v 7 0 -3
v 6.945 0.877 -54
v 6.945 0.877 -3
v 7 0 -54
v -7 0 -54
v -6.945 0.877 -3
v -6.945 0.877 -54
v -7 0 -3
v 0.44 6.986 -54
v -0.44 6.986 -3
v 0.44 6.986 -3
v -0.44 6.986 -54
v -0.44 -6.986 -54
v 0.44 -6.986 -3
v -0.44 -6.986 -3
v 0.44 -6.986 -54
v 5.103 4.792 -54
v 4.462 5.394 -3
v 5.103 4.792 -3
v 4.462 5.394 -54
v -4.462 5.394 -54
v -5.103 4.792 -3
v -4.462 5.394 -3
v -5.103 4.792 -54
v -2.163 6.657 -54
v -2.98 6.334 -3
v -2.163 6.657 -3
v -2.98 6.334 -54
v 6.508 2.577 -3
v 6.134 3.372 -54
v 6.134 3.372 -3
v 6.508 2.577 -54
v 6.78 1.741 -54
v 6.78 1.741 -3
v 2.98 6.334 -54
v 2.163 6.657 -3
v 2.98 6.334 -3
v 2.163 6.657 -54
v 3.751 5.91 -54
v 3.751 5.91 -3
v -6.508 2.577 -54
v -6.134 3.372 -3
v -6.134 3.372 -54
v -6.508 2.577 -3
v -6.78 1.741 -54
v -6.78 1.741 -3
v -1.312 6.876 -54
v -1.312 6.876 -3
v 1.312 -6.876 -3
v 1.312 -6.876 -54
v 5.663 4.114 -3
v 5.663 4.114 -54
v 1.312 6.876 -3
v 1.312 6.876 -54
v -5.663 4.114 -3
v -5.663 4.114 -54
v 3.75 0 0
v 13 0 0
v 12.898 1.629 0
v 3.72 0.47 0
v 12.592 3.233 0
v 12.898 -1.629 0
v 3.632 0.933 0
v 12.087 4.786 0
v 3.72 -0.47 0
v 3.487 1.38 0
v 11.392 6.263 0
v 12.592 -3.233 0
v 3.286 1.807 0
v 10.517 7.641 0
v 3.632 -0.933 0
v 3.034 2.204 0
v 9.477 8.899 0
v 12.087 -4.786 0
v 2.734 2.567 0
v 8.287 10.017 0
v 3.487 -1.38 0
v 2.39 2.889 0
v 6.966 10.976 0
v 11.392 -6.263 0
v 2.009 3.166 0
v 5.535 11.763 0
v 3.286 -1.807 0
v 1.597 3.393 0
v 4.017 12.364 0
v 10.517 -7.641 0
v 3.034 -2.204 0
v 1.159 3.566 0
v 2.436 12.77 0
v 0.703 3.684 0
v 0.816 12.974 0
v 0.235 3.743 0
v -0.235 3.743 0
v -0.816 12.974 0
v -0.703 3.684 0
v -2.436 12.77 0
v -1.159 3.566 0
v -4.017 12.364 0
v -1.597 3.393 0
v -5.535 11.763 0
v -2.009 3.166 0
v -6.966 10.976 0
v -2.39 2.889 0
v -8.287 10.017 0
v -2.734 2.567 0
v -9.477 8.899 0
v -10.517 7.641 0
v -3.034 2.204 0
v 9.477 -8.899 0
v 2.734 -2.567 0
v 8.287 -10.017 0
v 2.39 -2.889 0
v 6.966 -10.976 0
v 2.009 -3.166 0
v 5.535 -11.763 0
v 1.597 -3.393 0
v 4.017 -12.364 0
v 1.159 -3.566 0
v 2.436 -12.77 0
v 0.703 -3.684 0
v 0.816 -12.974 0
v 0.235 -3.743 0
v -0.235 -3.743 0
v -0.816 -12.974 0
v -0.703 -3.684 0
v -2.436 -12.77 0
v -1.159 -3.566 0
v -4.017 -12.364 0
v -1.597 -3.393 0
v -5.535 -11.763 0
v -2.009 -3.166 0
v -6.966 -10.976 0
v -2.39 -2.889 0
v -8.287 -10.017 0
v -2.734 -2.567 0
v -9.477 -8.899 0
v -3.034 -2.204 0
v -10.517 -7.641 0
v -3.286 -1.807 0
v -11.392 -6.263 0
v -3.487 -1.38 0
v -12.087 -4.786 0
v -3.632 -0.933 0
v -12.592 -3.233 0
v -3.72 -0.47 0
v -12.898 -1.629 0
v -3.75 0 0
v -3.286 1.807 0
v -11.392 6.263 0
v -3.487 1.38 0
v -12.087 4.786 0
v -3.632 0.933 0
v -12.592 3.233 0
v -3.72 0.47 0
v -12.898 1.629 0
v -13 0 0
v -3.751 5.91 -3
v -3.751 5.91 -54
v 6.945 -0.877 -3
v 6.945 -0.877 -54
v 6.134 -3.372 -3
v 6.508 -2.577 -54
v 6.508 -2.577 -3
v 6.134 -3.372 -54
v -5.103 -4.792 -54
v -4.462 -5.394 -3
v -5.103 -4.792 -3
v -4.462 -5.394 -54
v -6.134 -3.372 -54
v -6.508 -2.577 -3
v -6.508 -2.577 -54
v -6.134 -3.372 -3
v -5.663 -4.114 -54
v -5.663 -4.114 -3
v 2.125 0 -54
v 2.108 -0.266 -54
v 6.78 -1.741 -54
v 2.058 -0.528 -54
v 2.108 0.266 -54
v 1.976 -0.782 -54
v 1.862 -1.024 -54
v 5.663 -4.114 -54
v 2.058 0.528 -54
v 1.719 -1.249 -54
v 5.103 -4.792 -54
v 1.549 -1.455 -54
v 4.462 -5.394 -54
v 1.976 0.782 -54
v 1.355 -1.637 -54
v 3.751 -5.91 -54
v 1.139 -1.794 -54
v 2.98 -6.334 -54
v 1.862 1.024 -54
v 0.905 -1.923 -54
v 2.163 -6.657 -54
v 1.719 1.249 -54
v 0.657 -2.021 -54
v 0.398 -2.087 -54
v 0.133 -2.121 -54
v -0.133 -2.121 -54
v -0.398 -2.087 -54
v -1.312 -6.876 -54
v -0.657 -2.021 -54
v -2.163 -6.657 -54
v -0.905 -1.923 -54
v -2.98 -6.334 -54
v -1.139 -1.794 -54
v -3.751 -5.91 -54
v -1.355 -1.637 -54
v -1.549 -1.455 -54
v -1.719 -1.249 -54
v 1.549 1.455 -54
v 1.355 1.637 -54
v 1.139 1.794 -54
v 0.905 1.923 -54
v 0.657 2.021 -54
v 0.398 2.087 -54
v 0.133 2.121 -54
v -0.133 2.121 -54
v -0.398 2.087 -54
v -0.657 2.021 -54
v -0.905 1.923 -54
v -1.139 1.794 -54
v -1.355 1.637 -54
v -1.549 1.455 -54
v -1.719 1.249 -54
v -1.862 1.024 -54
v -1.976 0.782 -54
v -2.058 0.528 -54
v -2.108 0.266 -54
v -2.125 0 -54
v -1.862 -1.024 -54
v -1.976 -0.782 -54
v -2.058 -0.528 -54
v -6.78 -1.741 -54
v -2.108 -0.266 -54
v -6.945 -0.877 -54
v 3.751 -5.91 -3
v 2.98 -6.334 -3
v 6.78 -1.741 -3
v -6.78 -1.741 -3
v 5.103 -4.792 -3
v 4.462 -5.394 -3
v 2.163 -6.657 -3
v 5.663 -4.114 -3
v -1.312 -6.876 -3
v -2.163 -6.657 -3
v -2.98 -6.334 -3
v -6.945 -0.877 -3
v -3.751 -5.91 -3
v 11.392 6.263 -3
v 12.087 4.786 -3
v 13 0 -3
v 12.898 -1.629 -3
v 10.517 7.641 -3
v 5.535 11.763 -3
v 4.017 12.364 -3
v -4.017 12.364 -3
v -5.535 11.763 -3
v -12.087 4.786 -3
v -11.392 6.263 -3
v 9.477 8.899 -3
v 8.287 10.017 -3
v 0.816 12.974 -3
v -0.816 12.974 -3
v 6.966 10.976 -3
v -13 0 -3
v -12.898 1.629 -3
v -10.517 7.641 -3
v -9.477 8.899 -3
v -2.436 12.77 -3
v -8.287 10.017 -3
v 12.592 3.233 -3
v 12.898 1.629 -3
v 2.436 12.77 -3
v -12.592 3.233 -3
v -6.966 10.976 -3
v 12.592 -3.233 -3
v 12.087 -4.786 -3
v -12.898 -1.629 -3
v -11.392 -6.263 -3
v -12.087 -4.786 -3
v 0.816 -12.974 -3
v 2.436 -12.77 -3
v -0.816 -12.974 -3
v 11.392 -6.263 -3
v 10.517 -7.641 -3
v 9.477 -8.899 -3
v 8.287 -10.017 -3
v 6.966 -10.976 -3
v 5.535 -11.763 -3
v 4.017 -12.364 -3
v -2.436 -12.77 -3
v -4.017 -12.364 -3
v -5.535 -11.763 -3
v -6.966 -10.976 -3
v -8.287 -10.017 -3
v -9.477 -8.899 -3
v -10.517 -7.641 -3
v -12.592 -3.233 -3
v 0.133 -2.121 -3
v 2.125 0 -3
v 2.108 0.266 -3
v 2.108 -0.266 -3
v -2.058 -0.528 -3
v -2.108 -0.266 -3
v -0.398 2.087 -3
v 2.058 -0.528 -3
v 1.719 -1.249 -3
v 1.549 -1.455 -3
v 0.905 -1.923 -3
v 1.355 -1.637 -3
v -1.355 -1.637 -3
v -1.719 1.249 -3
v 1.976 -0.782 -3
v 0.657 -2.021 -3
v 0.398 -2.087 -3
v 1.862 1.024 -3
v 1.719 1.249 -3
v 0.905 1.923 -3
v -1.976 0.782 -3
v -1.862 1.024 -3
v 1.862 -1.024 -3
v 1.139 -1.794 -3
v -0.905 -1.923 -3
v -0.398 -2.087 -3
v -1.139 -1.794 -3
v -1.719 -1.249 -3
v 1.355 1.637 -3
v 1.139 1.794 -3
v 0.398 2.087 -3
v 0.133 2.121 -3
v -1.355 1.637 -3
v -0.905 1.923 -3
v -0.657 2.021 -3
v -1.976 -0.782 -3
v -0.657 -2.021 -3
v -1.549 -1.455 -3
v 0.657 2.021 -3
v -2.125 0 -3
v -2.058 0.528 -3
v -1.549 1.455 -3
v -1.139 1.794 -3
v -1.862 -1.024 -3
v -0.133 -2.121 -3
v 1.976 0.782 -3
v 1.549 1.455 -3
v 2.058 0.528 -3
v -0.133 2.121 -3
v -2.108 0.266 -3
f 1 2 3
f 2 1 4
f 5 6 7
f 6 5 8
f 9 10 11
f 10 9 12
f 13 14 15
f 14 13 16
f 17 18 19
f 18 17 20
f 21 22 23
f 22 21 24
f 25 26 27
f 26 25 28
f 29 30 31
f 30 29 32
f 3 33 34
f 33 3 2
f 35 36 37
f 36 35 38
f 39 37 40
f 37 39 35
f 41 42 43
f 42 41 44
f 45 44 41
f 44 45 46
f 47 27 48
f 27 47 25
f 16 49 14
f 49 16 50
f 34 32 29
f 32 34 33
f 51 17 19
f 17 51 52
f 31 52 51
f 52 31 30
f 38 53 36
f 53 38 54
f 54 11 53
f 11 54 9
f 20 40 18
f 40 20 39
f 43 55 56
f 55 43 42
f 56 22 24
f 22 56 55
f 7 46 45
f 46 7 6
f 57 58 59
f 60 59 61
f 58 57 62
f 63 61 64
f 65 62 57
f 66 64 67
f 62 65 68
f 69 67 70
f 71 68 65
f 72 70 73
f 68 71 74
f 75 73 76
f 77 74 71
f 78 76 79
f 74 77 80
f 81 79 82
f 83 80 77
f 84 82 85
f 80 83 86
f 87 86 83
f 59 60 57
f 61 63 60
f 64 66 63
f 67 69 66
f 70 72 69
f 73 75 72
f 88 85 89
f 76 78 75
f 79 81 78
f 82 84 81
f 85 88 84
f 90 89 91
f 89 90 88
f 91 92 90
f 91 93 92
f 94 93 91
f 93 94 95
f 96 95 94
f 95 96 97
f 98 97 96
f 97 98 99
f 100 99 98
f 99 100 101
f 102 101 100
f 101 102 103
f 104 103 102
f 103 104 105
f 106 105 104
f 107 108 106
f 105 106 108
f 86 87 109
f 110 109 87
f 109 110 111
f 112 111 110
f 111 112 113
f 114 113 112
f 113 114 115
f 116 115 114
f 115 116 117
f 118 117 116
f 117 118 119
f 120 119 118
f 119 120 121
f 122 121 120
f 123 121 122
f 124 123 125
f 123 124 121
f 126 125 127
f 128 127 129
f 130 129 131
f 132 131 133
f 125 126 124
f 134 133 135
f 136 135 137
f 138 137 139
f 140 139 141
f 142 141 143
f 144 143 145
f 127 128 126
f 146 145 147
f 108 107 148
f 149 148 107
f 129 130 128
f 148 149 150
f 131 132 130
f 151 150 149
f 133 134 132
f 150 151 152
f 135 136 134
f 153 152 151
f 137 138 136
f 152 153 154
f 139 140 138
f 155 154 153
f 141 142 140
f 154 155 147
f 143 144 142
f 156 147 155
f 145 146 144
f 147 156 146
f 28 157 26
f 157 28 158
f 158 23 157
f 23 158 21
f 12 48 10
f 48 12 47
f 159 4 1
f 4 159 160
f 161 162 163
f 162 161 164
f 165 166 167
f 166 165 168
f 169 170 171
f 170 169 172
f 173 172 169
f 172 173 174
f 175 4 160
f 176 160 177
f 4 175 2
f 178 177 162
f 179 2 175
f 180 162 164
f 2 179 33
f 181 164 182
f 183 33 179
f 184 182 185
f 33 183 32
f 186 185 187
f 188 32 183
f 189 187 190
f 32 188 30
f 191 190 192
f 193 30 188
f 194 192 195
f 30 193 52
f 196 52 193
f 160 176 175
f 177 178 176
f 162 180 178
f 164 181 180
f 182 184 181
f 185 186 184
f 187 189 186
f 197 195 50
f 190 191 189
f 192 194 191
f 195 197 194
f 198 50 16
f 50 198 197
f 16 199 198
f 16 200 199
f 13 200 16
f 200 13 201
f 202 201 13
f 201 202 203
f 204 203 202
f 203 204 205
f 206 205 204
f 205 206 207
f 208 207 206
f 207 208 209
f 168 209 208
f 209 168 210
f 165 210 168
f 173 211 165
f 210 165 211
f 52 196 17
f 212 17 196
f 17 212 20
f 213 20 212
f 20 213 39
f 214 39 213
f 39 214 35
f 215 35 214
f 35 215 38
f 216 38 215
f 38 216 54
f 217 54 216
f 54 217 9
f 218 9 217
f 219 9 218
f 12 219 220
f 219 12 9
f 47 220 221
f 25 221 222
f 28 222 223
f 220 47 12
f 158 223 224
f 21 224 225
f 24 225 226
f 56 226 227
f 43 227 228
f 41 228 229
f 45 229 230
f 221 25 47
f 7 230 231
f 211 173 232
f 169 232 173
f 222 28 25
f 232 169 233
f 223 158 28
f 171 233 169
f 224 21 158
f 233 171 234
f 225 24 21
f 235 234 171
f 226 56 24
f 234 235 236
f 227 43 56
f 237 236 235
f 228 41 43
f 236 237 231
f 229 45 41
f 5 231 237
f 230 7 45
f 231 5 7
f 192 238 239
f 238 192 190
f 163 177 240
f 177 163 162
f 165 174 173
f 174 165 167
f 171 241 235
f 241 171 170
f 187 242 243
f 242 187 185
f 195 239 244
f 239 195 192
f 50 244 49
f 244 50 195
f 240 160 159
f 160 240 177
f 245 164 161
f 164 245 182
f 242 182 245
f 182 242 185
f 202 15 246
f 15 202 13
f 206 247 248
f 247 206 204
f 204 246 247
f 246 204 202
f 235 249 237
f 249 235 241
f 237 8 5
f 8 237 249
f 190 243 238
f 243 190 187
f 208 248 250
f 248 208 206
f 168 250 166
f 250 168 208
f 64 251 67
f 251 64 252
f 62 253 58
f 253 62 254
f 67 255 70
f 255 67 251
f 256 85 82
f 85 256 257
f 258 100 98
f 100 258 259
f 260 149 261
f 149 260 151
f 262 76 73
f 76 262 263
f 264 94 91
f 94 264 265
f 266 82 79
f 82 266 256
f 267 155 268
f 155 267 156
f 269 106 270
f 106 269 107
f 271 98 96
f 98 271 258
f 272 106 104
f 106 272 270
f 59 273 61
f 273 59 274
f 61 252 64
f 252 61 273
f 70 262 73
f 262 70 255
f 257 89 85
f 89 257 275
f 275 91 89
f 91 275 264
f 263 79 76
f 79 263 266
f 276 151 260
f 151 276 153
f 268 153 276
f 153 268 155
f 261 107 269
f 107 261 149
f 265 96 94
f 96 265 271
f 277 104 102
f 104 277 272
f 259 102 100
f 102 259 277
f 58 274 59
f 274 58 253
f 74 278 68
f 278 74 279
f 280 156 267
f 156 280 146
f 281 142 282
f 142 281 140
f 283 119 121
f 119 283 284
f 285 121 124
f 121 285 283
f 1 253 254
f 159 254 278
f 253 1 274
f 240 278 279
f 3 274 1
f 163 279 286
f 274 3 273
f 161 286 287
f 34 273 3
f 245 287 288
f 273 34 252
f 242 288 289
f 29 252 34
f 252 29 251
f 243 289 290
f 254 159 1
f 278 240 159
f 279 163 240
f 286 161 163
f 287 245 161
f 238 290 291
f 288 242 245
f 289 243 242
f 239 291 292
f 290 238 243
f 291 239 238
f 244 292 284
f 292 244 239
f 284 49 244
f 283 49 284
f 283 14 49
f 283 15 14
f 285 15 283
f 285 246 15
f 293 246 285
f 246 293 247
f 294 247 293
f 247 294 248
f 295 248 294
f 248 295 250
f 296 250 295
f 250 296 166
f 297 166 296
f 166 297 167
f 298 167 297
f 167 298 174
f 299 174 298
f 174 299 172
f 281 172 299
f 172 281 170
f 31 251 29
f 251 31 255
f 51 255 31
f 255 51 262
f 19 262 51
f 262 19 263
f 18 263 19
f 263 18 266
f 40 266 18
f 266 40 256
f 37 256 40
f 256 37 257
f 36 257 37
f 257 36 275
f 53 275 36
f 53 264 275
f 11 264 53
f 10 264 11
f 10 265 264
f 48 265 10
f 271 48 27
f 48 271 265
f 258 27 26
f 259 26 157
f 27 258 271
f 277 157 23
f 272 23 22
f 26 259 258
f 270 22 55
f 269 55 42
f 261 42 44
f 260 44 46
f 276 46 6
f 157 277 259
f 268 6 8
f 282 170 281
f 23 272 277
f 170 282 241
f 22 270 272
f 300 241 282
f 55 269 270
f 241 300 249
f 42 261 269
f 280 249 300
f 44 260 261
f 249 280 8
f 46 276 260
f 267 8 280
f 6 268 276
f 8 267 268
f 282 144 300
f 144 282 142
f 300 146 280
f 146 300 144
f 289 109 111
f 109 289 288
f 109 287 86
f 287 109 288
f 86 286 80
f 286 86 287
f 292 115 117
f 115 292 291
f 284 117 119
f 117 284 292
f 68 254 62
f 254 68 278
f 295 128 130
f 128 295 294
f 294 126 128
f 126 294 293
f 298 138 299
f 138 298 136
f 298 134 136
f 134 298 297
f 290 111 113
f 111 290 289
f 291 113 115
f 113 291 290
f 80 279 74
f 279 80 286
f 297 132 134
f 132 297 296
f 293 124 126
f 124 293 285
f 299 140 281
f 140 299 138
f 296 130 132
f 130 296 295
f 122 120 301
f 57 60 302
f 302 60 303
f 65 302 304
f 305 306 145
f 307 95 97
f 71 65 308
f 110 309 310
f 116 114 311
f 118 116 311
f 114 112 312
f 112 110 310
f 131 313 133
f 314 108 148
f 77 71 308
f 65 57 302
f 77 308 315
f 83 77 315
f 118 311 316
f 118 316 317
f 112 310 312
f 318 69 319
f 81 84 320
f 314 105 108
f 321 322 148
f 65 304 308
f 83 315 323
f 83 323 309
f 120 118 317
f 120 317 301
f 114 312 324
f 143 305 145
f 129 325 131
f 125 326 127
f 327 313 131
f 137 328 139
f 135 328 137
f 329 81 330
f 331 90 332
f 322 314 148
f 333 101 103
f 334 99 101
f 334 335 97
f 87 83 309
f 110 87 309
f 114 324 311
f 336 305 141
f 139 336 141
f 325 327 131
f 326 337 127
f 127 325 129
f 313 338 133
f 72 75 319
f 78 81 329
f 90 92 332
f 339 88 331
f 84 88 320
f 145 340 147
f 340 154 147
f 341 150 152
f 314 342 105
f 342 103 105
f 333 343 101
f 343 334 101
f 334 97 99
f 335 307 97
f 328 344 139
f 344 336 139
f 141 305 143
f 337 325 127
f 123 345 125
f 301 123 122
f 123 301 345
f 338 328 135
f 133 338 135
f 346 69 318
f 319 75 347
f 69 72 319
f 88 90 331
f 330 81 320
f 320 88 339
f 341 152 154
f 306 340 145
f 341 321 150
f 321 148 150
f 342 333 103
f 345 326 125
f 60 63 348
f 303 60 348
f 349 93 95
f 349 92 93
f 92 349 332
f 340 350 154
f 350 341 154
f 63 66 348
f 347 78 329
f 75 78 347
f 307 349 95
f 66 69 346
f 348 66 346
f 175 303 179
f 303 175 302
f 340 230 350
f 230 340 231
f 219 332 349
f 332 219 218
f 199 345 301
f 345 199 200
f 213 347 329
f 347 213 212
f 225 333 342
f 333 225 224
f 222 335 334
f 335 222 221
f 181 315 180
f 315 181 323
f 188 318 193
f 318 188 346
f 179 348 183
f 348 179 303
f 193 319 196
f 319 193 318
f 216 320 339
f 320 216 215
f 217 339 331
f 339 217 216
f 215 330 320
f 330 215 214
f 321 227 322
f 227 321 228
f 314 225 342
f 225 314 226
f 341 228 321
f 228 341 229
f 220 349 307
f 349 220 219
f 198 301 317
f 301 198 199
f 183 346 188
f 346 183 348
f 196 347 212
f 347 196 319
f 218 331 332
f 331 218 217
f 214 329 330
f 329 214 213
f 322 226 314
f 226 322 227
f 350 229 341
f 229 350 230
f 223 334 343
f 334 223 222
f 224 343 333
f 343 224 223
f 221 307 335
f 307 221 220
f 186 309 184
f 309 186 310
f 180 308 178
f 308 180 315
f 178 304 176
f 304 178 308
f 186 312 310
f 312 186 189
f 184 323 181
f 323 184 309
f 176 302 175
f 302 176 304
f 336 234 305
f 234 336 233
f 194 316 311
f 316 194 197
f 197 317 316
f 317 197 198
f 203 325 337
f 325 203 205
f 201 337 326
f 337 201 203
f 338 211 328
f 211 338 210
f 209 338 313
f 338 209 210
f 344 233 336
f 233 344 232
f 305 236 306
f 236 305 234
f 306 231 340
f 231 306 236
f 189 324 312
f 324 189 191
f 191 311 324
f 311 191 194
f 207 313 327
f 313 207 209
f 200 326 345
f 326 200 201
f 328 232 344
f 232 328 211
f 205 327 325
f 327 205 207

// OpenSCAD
$fn = 50;


difference() {
	union() {
		translate(v = [0, 0, -54.0000000000]) {
			cylinder(h = 54, r = 7.0000000000);
		}
		translate(v = [0, 0, -3.0000000000]) {
			cylinder(h = 3, r = 13.0000000000);
		}
	}
	union() {
		translate(v = [0, 0, 0]) {
			rotate(a = [0, 0, 0]) {
				difference() {
					union() {
						#translate(v = [0, 0, -54.0000000000]) {
							cylinder(h = 54, r = 2.0000000000);
						}
						#translate(v = [0, 0, -3]) {
							cylinder(h = 3, r1 = 2.1250000000, r2 = 3.7500000000);
						}
						#translate(v = [0, 0, -54.0000000000]) {
							cylinder(h = 54, r = 2.1250000000);
						}
						#translate(v = [0, 0, -54.0000000000]) {
							cylinder(h = 54, r = 2.0000000000);
						}
					}
					union();
				}
			}
		}
	}
}
